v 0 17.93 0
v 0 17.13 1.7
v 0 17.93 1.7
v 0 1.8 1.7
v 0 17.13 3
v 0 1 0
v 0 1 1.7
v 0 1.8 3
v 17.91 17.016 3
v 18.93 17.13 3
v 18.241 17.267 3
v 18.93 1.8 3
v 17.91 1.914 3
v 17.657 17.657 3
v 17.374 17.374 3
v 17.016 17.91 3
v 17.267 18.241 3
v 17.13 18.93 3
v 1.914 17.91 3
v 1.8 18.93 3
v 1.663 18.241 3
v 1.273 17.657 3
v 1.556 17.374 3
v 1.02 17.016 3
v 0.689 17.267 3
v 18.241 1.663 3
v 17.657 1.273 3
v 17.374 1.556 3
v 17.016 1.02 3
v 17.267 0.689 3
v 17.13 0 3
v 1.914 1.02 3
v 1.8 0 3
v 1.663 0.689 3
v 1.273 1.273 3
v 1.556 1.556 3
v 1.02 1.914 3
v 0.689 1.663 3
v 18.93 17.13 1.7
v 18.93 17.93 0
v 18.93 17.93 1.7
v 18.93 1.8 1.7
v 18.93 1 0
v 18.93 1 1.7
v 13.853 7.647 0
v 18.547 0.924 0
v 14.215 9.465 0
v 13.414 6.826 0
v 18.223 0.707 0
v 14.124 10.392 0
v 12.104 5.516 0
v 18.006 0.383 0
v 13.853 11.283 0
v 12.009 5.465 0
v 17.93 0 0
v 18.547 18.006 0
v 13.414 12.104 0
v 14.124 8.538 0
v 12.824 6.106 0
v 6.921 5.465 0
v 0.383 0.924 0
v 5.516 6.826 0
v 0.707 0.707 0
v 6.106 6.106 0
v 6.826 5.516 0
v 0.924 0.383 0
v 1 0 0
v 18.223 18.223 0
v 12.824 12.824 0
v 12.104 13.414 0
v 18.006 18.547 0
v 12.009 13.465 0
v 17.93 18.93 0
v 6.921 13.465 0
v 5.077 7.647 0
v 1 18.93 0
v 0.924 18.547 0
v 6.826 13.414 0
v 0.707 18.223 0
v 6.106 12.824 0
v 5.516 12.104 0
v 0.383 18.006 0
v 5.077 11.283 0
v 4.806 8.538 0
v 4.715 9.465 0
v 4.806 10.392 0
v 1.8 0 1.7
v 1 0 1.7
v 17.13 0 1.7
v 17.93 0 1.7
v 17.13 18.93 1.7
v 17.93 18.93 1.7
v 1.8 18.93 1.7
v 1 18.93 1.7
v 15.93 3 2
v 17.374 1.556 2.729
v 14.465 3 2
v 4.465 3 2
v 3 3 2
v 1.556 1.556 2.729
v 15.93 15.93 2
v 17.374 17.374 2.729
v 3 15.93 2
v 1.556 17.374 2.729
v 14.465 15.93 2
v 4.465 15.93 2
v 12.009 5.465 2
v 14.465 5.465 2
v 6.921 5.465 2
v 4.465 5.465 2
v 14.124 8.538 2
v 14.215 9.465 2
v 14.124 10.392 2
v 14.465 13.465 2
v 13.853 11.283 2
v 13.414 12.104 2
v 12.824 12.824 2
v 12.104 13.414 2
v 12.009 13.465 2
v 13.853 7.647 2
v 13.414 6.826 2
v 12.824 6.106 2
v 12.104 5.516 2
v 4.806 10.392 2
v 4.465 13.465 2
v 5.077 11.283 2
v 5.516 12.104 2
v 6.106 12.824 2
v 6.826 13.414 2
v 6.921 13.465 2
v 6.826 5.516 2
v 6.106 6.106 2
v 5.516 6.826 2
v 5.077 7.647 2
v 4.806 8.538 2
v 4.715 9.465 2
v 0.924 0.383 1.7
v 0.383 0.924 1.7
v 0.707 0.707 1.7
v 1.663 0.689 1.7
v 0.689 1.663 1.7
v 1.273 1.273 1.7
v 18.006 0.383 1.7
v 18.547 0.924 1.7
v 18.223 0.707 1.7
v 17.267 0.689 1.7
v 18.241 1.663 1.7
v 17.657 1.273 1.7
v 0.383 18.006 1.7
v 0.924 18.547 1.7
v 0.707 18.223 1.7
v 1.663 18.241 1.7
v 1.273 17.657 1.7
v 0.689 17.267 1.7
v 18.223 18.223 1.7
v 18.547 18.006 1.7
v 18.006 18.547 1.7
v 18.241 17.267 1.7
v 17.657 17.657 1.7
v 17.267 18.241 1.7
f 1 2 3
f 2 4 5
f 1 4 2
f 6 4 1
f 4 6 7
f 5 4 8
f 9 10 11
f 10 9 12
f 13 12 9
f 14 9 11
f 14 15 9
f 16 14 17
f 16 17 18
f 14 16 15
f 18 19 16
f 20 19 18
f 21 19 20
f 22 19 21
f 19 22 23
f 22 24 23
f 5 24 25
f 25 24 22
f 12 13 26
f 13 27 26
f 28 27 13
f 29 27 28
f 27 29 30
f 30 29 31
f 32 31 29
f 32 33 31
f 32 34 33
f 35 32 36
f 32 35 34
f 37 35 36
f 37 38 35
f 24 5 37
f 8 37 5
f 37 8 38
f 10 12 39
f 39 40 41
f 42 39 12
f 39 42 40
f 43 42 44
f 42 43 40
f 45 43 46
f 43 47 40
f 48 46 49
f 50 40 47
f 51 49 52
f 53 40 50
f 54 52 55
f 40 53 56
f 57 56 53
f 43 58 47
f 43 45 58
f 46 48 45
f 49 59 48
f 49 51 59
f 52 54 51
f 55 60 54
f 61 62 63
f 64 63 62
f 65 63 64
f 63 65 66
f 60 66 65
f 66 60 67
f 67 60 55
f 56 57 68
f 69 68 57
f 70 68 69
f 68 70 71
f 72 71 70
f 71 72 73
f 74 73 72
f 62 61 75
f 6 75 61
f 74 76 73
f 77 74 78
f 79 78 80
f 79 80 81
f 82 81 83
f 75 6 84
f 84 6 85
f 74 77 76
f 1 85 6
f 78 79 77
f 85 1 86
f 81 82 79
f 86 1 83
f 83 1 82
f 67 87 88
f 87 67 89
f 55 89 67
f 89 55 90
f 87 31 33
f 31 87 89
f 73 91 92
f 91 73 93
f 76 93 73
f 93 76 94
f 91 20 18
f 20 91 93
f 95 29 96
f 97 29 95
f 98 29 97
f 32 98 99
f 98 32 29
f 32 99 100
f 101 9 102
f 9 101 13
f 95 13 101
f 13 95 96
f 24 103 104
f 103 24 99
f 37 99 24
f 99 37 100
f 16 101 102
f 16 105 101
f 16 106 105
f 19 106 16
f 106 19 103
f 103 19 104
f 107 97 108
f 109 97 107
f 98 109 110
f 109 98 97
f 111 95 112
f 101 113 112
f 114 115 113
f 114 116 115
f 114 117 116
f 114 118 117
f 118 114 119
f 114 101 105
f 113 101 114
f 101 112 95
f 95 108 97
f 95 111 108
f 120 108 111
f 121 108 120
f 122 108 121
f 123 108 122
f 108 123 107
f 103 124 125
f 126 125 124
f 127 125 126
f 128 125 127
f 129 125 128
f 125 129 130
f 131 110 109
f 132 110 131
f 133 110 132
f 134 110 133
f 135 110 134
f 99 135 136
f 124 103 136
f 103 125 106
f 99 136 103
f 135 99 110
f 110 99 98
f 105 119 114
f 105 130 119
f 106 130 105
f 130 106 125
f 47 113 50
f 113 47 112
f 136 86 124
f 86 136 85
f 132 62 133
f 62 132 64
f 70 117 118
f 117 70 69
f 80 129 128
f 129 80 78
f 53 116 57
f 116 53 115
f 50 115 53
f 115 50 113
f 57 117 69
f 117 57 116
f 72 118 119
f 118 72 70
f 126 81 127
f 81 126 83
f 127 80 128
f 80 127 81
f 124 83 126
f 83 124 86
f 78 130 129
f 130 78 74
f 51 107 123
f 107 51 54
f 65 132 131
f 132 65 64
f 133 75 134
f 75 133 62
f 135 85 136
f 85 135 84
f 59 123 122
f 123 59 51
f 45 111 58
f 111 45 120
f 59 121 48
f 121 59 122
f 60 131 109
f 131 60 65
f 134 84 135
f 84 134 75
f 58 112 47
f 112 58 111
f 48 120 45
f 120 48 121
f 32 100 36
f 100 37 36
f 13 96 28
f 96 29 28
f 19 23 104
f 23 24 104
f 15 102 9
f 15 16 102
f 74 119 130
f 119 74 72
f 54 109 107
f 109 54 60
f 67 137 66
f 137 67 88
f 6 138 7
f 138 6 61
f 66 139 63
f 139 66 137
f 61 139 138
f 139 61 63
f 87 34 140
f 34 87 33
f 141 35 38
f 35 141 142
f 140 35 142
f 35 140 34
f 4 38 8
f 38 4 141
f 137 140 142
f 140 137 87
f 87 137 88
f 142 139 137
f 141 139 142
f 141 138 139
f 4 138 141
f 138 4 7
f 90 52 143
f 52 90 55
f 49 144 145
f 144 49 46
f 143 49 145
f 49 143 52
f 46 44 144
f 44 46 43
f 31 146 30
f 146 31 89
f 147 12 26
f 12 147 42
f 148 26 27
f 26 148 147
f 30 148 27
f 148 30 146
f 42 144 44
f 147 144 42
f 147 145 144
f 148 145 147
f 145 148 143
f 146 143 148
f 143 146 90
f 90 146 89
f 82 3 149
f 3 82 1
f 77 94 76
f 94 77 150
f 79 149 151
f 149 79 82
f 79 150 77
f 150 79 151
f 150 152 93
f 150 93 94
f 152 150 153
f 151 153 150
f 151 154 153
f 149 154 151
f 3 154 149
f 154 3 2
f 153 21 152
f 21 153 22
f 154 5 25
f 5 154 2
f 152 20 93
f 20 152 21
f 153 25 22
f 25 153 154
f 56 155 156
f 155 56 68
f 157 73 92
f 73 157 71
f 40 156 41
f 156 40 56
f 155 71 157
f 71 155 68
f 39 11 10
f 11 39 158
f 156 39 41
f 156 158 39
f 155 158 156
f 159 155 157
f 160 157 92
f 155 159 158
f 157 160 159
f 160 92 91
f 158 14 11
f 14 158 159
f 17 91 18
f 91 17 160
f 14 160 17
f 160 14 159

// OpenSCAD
//OpenSCAD-Skript

//Moduldefinition mit Parametern für Frontplattensystem im 19mm-Raster
module FrontElem (
//Parameter
xwert=1,        //Anzahl der Segmente in horizontaler Richtung
ywert=1,        //Anzahl der Segmente in vertikaler Richtung
segment=18.93,  //Kantenlänge des Segments
thick=2.0,      //verbleibende Dicke des Frontplattensegments
wo=1.0,         //Wandstärke oben
wu=3,         //Wandstärke unten
hght=3.0,       //Höhe des Rands des Frontplattensegments
M3=false,       //Bohrungen für M3-Zylinderkopf-Inbusschraube
skd3=5.6,       //Schraubenkopfdurchmesser M3-Schraube
skh3=3.3,       //Schraubenkopfhöhe M3-Schraube
dsh3=3.1,       //Schaftdurchmesser M3-Schraube
dvst3=7,        //Verstärkung für M3-Schraube
B2mm=true,      //Bohrungen für 2mm-Schneidschrauben
skd2=3.6,       //Schraubenkopfdurchmesser 2mm-Schraube (4.4)
skh2=1.3,       //Schraubenkopfhöhe 2mm-Schraube
dsh2=2.0,       //Schaftdurchmesser 2mm-Schraube
dvst2=4.4,      //Verstärkung für 2mm-Schraube
Btext=6.0,      //Breite Beschriftungsband
Ltext=12,       //Länge Beschriftungsband
Dtext=0.3,      //Tiefe Beschriftungsfeld, oder Null
LEDdia=5.0,     //Durchmesser LED
KSWdia=6.0,     //Schaftdurchmesser Kippschalter
RSWdia=9.2,     //Schaftdurchmesser Drehschalter
RSWdist=9.4,    //Mittenabstand Pin
RSWpin=3.0,     //Durchmesser Pin
POTdia=6.8,     //Schaftdurchmesser Poti
TRMdia=4.0,     //Bohrung für Polklemme M4
TRSdia=6.0,     //Bohrung für Telefonbuchse 4mm
MCdia=11.8,     //Bohrung für MC-Buchse 4mm
MCdist=10.4,    //Abstand Abflachungen
BNCdia=9.5,     //Durchmesser Bohrung
BNCdist=8.0    //Abstand Abflachung
)
//Beginn Modul
{
difference(){   //difference 1
union(){        //union 1
difference(){   //difference 2
union(){        //union 2
    //alles, was vor der nächsten geschweiften Klammer steht, wird zusammengefügt (union 2)
//Körper des Frontplattensegments
cube([xwert*segment, ywert*segment, hght]);


}               //union 2 end
    //alles, was vor der nächsten geschweiften Klammer steht, wird davon abgezogen (difference 2)
//Einsenkung in das Segment
polyhedron(
               points= [[wu,wu,thick],                                  //0 unten
                        [xwert*segment-wu,wu,thick],                    //1 unten
                        [xwert*segment-wu,ywert*segment-wu,thick],      //2 unten
                        [wu,ywert*segment-wu,thick],                    //3 unten
                        [wo,wo,hght+0.01],                              //4 oben
                        [wo,ywert*segment-wo, hght+0.01],               //5 oben
                        [xwert*segment-wo,ywert*segment-wo,hght+0.01],  //6 oben
                        [xwert*segment-wo,wo,hght+0.01],                //7 oben
                       ],
               faces=  [[0,1,2,3],      //Boden
                        [0,4,7,1],      //Deckel
                        [1,7,6,2],      //Front
                        [2,6,5,3],      //Seitenwand rechts
                        [3,5,4,0],      //Rückwand
                        [4,5,6,7]]      //Seitenwand links
               );   
//Bohrung für LED mittig (Mindestgröße 1x1)
/*
translate([xwert*segment/2,ywert*segment/2-3,-0.1])  cylinder(d=LEDdia, h=10, $fn=32);
*/

//Bohrung für LED nach unten versetzt mit Textfeld darüber (Mindestgröße 1x1, bei 10mm LED 1x2)
/*
translate([xwert*segment/2,ywert*segment/2-3,-0.1])  cylinder(d=LEDdia, h=10, $fn=32);
translate([xwert*segment/2-Ltext/2,ywert*segment/2,thick-Dtext+0.05])  cube([Ltext, Btext, Dtext]); 
*/

//Bohrung für Kippschalter mittig (Mindestgröße 1x1)
/*
translate([xwert*segment/2,ywert*segment/2,-0.1])  cylinder(d=KSWdia, h=10, $fn=32); 
*/

//Bohrungen für Drehschalter mit Pin (Mindestgröße 2x2)
/*
translate([xwert*segment/2,ywert*segment/2,-0.1])  cylinder(d=RSWdia, h=10, $fn=32);
translate([xwert*segment/2+RSWdist,ywert*segment/2,-0.1])  cylinder(d=RSWpin, h=1.5, $fn=32);
*/

//Bohrung für Potentiometer 3mm-Schaft (Mindestgröße 1x1)
/*
translate([xwert*segment/2,ywert*segment/2,-0.1])  cylinder(d=POTdia, h=10, $fn=32);
*/

//Bohrung für 4mm-Polklemme M4 (Mindestgröße 1x1)
/*translate([xwert*segment/2,ywert*segment/2,-0.1])  cylinder(d=TRMdia, h=10, $fn=32);
*/       

//Bohrung für 4mm-Telefonbuchse (Mindestgröße 1x1)
/*
translate([xwert*segment/2,ywert*segment/2,-0.1])  cylinder(d=TRSdia, h=10, $fn=32);
*/

//Bohrung für 4mm-MC-Buchse (Mindestgröße 2x2)
/*
translate([xwert*segment/2,ywert*segment/2,-0.1])  cylinder(d=MCdia, h=10, $fn=32);
*/

//Bohrung für BNC-Buchse (Mindestgröße 1x1)
translate([xwert*segment/2,ywert*segment/2,-0.1])  cylinder(d=BNCdia, h=10, $fn=32);

}  //difference 2 end
    //alles, was vor der nächsten geschweiften Klammer steht, wird dazu hinzugefügt (union 1)
//Verstärkungen für Schrauben x-Achse unten
for (x=[0:segment:xwert*segment])
{
if (M3==true) translate([x,0,0]) cylinder(d=dvst3,h=hght,$fn=16);
if (B2mm==true) translate([x,0,0]) cylinder(d=dvst2,h=hght,$fn=16);
}
//Verstärkungen für Schrauben x-Achse oben
for (x=[0:segment:xwert*segment])
{
if (M3==true) translate([x,ywert*segment,0]) cylinder(d=dvst3,h=hght,$fn=16);
if (B2mm==true) translate([x,ywert*segment,0]) cylinder(d=dvst2,h=hght,$fn=16);
}
//Verstärkungen für Schrauben y-Achse links
for (y=[0:segment:ywert*segment])
{
if (M3==true) translate([0,y,0]) cylinder(d=dvst3,h=hght,$fn=16);
if (B2mm==true) translate([0,y,0]) cylinder(d=dvst2,h=hght,$fn=16);
}
//Verstärkungen für Schrauben y-Achse rechts
for (y=[0:segment:ywert*segment])
{
if (M3==true) translate([xwert*segment,y,0]) cylinder(d=dvst3,h=hght,$fn=16);
if (B2mm==true) translate([xwert*segment,y,0]) cylinder(d=dvst2,h=hght,$fn=16);
}

//Abflachungen für 4mm-MC-Buchse (Mindestgröße 2x2)
/*
translate([xwert*segment/2-5,ywert*segment/2+MCdist/2,0])  cube([10,3,thick]);
translate([xwert*segment/2-5,ywert*segment/2-MCdist/2-3,0])  cube([10,3,thick]);
*/

//Abflachungen für BNC-Buchse (Mindestgröße 1x1)
translate([xwert*segment/2-5,ywert*segment/2+BNCdist/2,0])  cube([10,3,thick]);
translate([xwert*segment/2-5,ywert*segment/2-BNCdist/2-3,0])  cube([10,3,thick]);


}               //union 1 end
    //alles, was vor der nächsten geschweiften Klammer steht, wird davon wieder abgezogen (difference 1)
//Bohrungen für Schrauben x-Achse unten
for (x=[0:segment:xwert*segment])
{
if (M3==true) translate([x,0,-0.1]) cylinder(d=dsh3,h=2*hght,$fn=16);
if (M3==true) translate([x,0,hght-skh3]) cylinder(d=skd3,h=2*hght,$fn=16);
if (B2mm==true) translate([x,0,-0.1]) cylinder(d=dsh2,h=2*hght,$fn=16);
if (B2mm==true) translate([x,0,hght-skh2]) cylinder(d=skd2,h=2*hght,$fn=16); 
}
//Bohrungen für Schrauben x-Achse oben
for (x=[0:segment:xwert*segment])
{
if (M3==true) translate([x,ywert*segment,-0.1]) cylinder(d=dsh3,h=2*hght,$fn=16);
if (M3==true) translate([x,ywert*segment,hght-skh3]) cylinder(d=skd3,h=2*hght,$fn=16);
if (B2mm==true) translate([x,ywert*segment,-0.1]) cylinder(d=dsh2,h=2*hght,$fn=16);
if (B2mm==true) translate([x,ywert*segment,hght-skh2]) cylinder(d=skd2,h=2*hght,$fn=16); 
}
//Bohrungen für Schrauben y-Achse links
for (y=[0:segment:ywert*segment])
{
if (M3==true) translate([0,y,-0.1]) cylinder(d=dsh3,h=2*hght,$fn=16);
if (M3==true) translate([0,y,hght-skh3]) cylinder(d=skd3,h=2*hght,$fn=16);
if (B2mm==true) translate([0,y,-0.1]) cylinder(d=dsh2,h=2*hght,$fn=16);
if (B2mm==true) translate([0,y,hght-skh2]) cylinder(d=skd2,h=2*hght,$fn=16); 
}
//Bohrungen für Schrauben y-Achse rechts
for (y=[0:segment:ywert*segment])
{
if (M3==true) translate([xwert*segment,y,-0.1]) cylinder(d=dsh3,h=2*hght,$fn=16);
if (M3==true) translate([xwert*segment,y,hght-skh3]) cylinder(d=skd3,h=2*hght,$fn=16);
if (B2mm==true) translate([xwert*segment,y,-0.1]) cylinder(d=dsh2,h=2*hght,$fn=16);
if (B2mm==true) translate([xwert*segment,y,hght-skh2]) cylinder(d=skd2,h=2*hght,$fn=16); 
}
//Abschneiden Verstärkungen unten
translate([-250,-10,-0.1])
cube([500,10,25]);
//Abschneiden Verstärkungen oben
translate([-250,ywert*segment,-0.1])
cube([500,10,25]);
//Abschneiden Verstärkungen links
translate([-10,-250,-0.1])
cube([10,500,25]);
//Abschneiden Verstärkungen rechts
translate([xwert*segment,-250,-0.1])
cube([10,500,25]);
/*LED-Ausschnitt
translate([xwert*segment/2-3,ywert*segment/2-3,thick-0.5])
cube([6,6,3]);
translate([xwert*segment/2-2.5,ywert*segment/2-2.5,-0.1])
cube([5,5,2*thick]);
*/

}               //difference 1 end

}  //module end

//Hier werden Instanzen des Moduls aufgerufen
translate([0,0,0]) FrontElem();
